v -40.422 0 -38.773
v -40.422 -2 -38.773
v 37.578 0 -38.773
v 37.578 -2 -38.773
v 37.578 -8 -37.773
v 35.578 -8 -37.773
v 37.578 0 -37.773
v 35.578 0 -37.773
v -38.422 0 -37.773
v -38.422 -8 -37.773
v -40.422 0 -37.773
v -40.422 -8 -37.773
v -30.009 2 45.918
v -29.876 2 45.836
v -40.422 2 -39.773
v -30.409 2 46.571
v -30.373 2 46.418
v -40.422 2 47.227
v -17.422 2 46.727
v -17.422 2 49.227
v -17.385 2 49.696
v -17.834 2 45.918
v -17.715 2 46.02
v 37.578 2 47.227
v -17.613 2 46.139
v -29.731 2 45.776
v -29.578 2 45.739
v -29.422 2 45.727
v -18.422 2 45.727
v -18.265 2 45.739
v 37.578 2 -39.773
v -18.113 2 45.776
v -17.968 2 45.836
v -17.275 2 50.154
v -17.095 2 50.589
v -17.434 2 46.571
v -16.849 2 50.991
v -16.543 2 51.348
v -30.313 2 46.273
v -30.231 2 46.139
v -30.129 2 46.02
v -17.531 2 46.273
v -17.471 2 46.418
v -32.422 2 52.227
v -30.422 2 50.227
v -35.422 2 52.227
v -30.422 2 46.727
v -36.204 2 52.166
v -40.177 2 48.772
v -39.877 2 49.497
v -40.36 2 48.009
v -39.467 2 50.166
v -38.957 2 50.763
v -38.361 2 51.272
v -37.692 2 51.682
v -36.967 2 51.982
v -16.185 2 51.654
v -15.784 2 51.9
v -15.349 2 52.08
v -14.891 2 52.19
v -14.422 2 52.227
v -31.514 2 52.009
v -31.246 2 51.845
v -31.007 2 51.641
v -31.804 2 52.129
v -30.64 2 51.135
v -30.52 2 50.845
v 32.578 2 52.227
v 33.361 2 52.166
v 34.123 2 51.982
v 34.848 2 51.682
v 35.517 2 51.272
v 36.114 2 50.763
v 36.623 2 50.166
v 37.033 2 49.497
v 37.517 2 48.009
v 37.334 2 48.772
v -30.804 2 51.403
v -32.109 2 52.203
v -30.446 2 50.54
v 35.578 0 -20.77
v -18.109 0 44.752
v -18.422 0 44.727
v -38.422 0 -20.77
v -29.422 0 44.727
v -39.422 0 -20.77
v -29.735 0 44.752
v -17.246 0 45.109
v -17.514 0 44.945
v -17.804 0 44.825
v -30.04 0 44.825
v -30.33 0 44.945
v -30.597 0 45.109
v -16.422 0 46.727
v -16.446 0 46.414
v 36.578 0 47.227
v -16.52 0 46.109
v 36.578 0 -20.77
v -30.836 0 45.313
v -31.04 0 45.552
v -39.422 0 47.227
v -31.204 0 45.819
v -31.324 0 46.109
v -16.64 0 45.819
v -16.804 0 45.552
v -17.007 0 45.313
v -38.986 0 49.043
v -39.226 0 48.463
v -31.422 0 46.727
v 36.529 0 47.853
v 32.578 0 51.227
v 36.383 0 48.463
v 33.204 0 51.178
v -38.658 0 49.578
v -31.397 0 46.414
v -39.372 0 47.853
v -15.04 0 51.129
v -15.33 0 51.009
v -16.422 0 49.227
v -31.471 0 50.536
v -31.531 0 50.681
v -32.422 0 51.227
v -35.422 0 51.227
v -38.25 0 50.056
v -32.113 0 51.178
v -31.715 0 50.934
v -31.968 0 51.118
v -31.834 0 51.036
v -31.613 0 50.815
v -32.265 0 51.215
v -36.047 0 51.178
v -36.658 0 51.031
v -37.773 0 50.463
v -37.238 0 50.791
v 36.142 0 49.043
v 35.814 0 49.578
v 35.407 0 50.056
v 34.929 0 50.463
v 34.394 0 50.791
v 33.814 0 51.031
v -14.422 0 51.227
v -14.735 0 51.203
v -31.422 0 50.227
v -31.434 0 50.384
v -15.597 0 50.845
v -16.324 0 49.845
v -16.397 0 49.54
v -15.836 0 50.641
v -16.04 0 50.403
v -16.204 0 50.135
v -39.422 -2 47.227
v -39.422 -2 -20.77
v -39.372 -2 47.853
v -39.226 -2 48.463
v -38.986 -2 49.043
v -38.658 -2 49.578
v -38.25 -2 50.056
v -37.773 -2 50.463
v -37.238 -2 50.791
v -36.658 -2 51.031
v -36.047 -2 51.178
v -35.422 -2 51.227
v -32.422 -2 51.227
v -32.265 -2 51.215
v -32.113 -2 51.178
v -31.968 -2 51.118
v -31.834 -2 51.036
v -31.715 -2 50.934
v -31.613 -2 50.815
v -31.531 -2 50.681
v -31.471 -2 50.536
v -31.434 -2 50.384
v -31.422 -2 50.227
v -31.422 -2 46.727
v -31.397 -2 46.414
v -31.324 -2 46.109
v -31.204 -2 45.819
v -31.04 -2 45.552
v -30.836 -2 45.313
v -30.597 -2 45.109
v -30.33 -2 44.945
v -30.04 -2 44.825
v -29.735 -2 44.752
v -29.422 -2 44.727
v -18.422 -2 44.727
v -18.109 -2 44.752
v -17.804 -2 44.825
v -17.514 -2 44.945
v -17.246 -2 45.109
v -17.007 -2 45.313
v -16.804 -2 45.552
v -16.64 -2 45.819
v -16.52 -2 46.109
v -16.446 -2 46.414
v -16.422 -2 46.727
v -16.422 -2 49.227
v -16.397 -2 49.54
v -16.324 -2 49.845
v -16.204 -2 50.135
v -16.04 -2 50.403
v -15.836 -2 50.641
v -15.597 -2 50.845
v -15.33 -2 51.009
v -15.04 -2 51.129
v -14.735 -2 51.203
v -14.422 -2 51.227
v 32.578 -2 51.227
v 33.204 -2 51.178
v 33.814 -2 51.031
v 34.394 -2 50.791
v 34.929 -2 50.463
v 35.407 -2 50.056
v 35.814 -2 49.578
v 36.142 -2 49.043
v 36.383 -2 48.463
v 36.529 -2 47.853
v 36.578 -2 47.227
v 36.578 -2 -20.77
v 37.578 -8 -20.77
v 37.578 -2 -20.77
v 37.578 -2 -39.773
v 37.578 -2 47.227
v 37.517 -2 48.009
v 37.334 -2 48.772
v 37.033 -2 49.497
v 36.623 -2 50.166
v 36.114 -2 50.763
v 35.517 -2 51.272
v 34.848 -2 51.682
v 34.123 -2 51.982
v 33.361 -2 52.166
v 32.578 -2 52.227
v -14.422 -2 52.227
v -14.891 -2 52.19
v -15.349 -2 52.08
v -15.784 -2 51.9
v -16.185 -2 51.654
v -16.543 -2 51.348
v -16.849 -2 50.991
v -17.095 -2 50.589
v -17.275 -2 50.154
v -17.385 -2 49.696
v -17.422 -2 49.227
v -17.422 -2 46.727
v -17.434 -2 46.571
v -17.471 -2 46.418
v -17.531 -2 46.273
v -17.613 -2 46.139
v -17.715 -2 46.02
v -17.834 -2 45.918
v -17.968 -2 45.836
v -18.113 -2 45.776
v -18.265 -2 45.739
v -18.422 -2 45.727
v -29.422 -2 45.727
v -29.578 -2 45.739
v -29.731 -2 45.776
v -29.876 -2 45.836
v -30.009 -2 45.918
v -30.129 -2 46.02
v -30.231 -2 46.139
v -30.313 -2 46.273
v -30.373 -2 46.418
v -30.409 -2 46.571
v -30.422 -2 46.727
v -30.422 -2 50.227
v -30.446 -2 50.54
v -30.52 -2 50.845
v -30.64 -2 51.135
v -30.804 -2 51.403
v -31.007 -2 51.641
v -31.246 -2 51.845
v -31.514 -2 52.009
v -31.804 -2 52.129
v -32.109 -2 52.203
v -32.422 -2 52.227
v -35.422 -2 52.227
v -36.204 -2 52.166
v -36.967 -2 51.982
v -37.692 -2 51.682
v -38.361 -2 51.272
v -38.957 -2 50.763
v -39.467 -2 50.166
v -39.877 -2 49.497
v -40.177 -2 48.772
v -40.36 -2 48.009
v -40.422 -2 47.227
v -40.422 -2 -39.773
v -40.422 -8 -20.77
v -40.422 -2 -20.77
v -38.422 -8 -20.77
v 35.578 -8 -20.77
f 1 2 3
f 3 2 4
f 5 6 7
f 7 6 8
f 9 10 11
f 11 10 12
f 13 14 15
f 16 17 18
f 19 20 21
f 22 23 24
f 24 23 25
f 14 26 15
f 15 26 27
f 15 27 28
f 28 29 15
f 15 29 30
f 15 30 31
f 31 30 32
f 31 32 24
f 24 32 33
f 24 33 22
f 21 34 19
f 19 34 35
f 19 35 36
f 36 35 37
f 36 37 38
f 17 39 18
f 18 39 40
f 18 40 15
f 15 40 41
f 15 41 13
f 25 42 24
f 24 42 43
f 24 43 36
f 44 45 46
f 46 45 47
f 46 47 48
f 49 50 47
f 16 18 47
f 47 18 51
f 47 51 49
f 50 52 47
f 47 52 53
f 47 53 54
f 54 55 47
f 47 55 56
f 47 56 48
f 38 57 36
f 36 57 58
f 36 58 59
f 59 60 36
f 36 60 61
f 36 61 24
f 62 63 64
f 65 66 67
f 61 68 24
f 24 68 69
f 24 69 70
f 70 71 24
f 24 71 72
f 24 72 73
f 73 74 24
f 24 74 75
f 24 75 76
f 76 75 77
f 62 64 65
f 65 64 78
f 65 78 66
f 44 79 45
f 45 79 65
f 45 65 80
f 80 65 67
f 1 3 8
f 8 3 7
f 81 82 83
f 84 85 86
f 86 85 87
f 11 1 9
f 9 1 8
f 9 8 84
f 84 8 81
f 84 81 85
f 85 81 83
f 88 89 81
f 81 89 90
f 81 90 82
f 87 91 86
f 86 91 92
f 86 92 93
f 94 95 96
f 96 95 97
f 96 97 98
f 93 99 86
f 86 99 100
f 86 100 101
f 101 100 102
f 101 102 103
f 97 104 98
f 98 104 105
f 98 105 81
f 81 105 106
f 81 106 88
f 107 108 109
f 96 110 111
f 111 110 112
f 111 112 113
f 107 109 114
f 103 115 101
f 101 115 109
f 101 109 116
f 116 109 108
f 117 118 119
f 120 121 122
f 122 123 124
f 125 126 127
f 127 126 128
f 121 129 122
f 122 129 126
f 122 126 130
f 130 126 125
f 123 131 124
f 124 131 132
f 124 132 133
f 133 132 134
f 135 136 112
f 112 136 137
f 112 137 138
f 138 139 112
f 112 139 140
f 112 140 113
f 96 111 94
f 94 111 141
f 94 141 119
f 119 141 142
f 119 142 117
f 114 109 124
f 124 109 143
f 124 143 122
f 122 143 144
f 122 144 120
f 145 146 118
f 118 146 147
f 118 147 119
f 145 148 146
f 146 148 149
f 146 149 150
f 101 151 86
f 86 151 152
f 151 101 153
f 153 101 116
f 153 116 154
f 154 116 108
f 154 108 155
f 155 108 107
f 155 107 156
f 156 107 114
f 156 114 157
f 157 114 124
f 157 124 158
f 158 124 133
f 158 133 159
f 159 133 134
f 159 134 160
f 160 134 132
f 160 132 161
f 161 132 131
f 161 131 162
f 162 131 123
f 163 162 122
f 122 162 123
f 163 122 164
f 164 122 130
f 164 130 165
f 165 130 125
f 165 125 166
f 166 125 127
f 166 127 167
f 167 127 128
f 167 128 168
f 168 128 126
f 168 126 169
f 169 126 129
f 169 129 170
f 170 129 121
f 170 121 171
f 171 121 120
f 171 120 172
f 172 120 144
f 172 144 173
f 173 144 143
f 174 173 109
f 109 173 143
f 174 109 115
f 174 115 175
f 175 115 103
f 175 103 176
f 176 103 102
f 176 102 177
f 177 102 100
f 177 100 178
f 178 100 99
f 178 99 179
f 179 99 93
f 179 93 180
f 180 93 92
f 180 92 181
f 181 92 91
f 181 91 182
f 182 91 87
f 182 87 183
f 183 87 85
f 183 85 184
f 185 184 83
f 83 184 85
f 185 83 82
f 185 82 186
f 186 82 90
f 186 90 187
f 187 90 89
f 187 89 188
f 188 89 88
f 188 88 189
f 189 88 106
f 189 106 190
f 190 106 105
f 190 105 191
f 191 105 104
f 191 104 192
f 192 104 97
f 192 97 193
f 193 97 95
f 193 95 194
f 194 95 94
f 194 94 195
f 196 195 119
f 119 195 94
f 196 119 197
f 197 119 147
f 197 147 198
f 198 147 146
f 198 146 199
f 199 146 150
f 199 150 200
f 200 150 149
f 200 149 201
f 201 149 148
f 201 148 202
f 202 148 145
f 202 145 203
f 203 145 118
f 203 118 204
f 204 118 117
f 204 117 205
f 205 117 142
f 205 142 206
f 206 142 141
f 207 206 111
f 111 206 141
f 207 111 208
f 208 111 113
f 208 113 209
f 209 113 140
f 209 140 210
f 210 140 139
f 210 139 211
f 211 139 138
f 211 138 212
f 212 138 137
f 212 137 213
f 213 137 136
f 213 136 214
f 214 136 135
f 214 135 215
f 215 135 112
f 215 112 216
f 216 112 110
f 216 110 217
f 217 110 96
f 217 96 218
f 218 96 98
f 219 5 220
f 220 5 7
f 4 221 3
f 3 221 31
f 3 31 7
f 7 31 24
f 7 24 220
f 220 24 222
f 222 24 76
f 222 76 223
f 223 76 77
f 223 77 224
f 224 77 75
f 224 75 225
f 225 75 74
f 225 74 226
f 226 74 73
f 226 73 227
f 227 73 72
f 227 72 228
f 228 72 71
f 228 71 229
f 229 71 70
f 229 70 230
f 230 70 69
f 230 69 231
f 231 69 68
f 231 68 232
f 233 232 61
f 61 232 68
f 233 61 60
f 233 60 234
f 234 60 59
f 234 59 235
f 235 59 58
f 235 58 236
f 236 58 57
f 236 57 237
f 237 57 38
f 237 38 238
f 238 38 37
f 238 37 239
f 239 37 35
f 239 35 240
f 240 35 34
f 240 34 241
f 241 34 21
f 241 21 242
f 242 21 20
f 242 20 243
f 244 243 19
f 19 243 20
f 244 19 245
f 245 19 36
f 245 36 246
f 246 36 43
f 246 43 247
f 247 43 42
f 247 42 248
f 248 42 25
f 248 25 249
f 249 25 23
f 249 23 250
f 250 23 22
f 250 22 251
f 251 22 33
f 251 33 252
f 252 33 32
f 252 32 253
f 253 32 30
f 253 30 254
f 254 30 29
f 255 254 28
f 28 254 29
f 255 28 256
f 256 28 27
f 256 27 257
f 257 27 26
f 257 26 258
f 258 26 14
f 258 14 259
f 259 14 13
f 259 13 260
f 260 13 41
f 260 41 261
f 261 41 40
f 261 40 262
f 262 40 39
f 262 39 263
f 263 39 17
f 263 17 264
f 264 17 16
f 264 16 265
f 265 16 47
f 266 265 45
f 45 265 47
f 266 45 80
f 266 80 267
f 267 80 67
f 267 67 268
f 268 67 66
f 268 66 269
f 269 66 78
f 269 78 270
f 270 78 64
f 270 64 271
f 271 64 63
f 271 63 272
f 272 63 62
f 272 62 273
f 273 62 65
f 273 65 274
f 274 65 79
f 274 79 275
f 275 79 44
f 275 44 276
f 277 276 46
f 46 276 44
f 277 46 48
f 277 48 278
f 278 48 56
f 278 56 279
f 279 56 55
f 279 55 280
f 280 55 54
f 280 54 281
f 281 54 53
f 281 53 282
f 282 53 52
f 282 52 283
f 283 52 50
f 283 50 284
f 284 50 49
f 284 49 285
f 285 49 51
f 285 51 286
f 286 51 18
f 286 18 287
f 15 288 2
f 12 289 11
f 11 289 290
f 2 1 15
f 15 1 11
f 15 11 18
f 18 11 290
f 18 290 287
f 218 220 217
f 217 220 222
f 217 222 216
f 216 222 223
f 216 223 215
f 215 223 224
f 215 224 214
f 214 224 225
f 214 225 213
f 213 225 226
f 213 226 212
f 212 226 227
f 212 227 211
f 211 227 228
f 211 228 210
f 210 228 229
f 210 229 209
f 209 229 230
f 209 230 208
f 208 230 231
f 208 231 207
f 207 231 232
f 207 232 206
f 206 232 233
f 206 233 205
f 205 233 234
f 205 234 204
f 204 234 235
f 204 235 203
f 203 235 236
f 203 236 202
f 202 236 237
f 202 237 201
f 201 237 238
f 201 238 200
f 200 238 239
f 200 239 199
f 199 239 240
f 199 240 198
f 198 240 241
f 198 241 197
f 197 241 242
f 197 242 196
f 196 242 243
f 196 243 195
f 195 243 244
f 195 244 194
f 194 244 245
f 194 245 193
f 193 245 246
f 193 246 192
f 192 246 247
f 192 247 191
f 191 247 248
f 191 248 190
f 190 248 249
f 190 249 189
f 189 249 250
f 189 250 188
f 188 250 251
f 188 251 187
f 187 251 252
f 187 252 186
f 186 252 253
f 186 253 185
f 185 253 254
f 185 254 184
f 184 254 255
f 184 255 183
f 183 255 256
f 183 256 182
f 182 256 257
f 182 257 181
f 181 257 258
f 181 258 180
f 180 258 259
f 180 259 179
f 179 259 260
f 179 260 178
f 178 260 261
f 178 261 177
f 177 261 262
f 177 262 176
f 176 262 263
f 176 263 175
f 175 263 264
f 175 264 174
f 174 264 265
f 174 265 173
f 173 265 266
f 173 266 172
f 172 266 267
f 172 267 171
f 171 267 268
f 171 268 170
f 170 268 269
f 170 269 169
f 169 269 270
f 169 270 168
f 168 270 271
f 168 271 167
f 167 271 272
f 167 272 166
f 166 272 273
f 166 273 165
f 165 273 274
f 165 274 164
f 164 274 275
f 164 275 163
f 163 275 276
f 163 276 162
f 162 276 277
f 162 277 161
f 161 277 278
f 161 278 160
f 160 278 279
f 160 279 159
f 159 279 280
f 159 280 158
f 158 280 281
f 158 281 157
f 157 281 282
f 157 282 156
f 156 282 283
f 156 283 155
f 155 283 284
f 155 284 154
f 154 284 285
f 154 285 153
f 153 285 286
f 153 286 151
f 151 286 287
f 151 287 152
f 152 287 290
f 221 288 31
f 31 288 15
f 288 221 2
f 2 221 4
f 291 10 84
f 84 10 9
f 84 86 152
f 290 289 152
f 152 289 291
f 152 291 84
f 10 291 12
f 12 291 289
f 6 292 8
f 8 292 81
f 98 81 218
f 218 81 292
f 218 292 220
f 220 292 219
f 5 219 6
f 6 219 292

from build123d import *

# Parameters (mm, degrees)
EXTRUDE_1_DEPTH = 2
EXTRUDE_START   = -4
SKETCH_2_W      = 78
SKETCH_2_H      = 1
EXTRUDE_2_DEPTH = 4
SKETCH_3_W      = 2
SKETCH_3_H      = 17.002857219
EXTRUDE_4_DEPTH = 10
SKETCH_5_W      = 1
SKETCH_5_H      = 1
EXTRUDE_6_DEPTH = 2


with BuildPart() as part:
    # Эскиз1 → Бобышка-Вытянуть1 (new body)
    with BuildSketch(Plane(origin=(0, 0, 0), x_dir=(1, 0, 0), z_dir=(0, 1, 0))):
        with BuildLine():
            Line((-39.421663854, 15.772857219), (-39.421663854, -47.227142781))
            ThreePointArc((-39.421663854, -47.227142781), (-38.250090979, -50.055569906), (-35.421663854, -51.227142781))
            Line((-35.421663854, -51.227142781), (-32.421663854, -51.227142781))
            ThreePointArc((-32.421663854, -51.227142781), (-31.714557073, -50.934249562), (-31.421663854, -50.227142781))
            Line((-31.421663854, -50.227142781), (-31.421663854, -46.727142781))
            ThreePointArc((-31.421663854, -46.727142781), (-30.835877417, -45.312929219), (-29.421663854, -44.727142781))
            Line((-29.421663854, -44.727142781), (-18.421663854, -44.727142781))
            ThreePointArc((-18.421663854, -44.727142781), (-17.007450292, -45.312929219), (-16.421663854, -46.727142781))
            Line((-16.421663854, -46.727142781), (-16.421663854, -49.227142781))
            ThreePointArc((-16.421663854, -49.227142781), (-15.835877417, -50.641356343), (-14.421663854, -51.227142781))
            Line((-14.421663854, -51.227142781), (21.578336146, -51.227142781))
            Line((21.578336146, -51.227142781), (32.578336146, -51.227142781))
            ThreePointArc((32.578336146, -51.227142781), (35.40676327, -50.055569906), (36.578336146, -47.227142781))
            Line((36.578336146, -47.227142781), (36.578336146, 15.772857219))
            Line((36.578336146, 15.772857219), (36.578336146, 38.772857219))
            Line((36.578336146, 38.772857219), (-39.421663854, 38.772857219))
            Line((-39.421663854, 38.772857219), (-39.421663854, 15.772857219))
        make_face()
    extrude(amount=EXTRUDE_1_DEPTH)

    # Эскиз2 → Бобышка-Вытянуть2 (add)
    with BuildSketch(Plane(origin=(0, 2, 0), x_dir=(1, 0, 0), z_dir=(0, 1, 0)).offset(EXTRUDE_START)):
        with BuildLine():
            Line((-35.421663854, -51.227142781), (-32.421663854, -51.227142781))
            ThreePointArc((-32.421663854, -51.227142781), (-31.714557073, -50.934249562), (-31.421663854, -50.227142781))
            Line((-31.421663854, -50.227142781), (-31.421663854, -46.727142781))
            ThreePointArc((-31.421663854, -46.727142781), (-30.835877417, -45.312929219), (-29.421663854, -44.727142781))
            Line((-29.421663854, -44.727142781), (-18.421663854, -44.727142781))
            ThreePointArc((-18.421663854, -44.727142781), (-17.007450292, -45.312929219), (-16.421663854, -46.727142781))
            Line((-16.421663854, -46.727142781), (-16.421663854, -49.227142781))
            ThreePointArc((-16.421663854, -49.227142781), (-15.835877417, -50.641356343), (-14.421663854, -51.227142781))
            Line((-14.421663854, -51.227142781), (32.578336146, -51.227142781))
            ThreePointArc((32.578336146, -51.227142781), (35.40676327, -50.055569906), (36.578336146, -47.227142781))
            Line((36.578336146, -47.227142781), (36.578336146, 15.772857219))
            Line((36.578336146, 15.772857219), (36.578336146, 21.77))
            Line((36.578336146, 21.77), (37.578336146, 21.77))
            Line((37.578336146, 21.77), (37.578336146, 15.772857219))
            Line((37.578336146, 15.772857219), (37.578336146, -47.227142781))
            ThreePointArc((37.578336146, -47.227142781), (36.113870052, -50.762676687), (32.578336146, -52.227142781))
            Line((32.578336146, -52.227142781), (-14.421663854, -52.227142781))
            ThreePointArc((-14.421663854, -52.227142781), (-16.542984198, -51.348463125), (-17.421663854, -49.227142781))
            Line((-17.421663854, -49.227142781), (-17.421663854, -46.727142781))
            ThreePointArc((-17.421663854, -46.727142781), (-17.714557073, -46.020036), (-18.421663854, -45.727142781))
            Line((-18.421663854, -45.727142781), (-29.421663854, -45.727142781))
            ThreePointArc((-29.421663854, -45.727142781), (-30.128770635, -46.020036), (-30.421663854, -46.727142781))
            Line((-30.421663854, -46.727142781), (-30.421663854, -50.227142781))
            ThreePointArc((-30.421663854, -50.227142781), (-31.007450292, -51.641356343), (-32.421663854, -52.227142781))
            Line((-32.421663854, -52.227142781), (-35.421663854, -52.227142781))
            ThreePointArc((-35.421663854, -52.227142781), (-38.95719776, -50.762676687), (-40.421663854, -47.227142781))
            Line((-40.421663854, -47.227142781), (-40.421663854, 15.772857219))
            Line((-40.421663854, 15.772857219), (-40.421663854, 21.77))
            Line((-40.421663854, 21.77), (-39.421663854, 21.77))
            Line((-39.421663854, 21.77), (-39.421663854, 15.772857219))
            Line((-39.421663854, 15.772857219), (-39.421663854, -47.227142781))
            ThreePointArc((-39.421663854, -47.227142781), (-38.250090979, -50.055569906), (-35.421663854, -51.227142781))
        make_face()
        with Locations((-1.421663854, 39.272857219)):
            Rectangle(SKETCH_2_W, SKETCH_2_H)
    extrude(amount=EXTRUDE_2_DEPTH)

    # Эскиз3 → Бобышка-Вытянуть4 (add)
    with BuildSketch(Plane(origin=(0, 2, 0), x_dir=(1, 0, 0), z_dir=(0, 1, 0))):
        with Locations((-39.421663854, 29.271428609)):
            Rectangle(SKETCH_3_W, SKETCH_3_H)
        with Locations((36.578336146, 29.271428609)):
            Rectangle(SKETCH_3_W, SKETCH_3_H)
    extrude(amount=-EXTRUDE_4_DEPTH)

    # Эскиз5 → Бобышка-Вытянуть6 (add)
    with BuildSketch(Plane(origin=(0, 2, 0), x_dir=(1, 0, 0), z_dir=(0, 1, 0))):
        with Locations((-39.921663854, 38.272857219)):
            Rectangle(SKETCH_5_W, SKETCH_5_H)
        with Locations((37.078336146, 38.272857219)):
            Rectangle(SKETCH_5_W, SKETCH_5_H)
    extrude(amount=-EXTRUDE_6_DEPTH)


solid = part.part
